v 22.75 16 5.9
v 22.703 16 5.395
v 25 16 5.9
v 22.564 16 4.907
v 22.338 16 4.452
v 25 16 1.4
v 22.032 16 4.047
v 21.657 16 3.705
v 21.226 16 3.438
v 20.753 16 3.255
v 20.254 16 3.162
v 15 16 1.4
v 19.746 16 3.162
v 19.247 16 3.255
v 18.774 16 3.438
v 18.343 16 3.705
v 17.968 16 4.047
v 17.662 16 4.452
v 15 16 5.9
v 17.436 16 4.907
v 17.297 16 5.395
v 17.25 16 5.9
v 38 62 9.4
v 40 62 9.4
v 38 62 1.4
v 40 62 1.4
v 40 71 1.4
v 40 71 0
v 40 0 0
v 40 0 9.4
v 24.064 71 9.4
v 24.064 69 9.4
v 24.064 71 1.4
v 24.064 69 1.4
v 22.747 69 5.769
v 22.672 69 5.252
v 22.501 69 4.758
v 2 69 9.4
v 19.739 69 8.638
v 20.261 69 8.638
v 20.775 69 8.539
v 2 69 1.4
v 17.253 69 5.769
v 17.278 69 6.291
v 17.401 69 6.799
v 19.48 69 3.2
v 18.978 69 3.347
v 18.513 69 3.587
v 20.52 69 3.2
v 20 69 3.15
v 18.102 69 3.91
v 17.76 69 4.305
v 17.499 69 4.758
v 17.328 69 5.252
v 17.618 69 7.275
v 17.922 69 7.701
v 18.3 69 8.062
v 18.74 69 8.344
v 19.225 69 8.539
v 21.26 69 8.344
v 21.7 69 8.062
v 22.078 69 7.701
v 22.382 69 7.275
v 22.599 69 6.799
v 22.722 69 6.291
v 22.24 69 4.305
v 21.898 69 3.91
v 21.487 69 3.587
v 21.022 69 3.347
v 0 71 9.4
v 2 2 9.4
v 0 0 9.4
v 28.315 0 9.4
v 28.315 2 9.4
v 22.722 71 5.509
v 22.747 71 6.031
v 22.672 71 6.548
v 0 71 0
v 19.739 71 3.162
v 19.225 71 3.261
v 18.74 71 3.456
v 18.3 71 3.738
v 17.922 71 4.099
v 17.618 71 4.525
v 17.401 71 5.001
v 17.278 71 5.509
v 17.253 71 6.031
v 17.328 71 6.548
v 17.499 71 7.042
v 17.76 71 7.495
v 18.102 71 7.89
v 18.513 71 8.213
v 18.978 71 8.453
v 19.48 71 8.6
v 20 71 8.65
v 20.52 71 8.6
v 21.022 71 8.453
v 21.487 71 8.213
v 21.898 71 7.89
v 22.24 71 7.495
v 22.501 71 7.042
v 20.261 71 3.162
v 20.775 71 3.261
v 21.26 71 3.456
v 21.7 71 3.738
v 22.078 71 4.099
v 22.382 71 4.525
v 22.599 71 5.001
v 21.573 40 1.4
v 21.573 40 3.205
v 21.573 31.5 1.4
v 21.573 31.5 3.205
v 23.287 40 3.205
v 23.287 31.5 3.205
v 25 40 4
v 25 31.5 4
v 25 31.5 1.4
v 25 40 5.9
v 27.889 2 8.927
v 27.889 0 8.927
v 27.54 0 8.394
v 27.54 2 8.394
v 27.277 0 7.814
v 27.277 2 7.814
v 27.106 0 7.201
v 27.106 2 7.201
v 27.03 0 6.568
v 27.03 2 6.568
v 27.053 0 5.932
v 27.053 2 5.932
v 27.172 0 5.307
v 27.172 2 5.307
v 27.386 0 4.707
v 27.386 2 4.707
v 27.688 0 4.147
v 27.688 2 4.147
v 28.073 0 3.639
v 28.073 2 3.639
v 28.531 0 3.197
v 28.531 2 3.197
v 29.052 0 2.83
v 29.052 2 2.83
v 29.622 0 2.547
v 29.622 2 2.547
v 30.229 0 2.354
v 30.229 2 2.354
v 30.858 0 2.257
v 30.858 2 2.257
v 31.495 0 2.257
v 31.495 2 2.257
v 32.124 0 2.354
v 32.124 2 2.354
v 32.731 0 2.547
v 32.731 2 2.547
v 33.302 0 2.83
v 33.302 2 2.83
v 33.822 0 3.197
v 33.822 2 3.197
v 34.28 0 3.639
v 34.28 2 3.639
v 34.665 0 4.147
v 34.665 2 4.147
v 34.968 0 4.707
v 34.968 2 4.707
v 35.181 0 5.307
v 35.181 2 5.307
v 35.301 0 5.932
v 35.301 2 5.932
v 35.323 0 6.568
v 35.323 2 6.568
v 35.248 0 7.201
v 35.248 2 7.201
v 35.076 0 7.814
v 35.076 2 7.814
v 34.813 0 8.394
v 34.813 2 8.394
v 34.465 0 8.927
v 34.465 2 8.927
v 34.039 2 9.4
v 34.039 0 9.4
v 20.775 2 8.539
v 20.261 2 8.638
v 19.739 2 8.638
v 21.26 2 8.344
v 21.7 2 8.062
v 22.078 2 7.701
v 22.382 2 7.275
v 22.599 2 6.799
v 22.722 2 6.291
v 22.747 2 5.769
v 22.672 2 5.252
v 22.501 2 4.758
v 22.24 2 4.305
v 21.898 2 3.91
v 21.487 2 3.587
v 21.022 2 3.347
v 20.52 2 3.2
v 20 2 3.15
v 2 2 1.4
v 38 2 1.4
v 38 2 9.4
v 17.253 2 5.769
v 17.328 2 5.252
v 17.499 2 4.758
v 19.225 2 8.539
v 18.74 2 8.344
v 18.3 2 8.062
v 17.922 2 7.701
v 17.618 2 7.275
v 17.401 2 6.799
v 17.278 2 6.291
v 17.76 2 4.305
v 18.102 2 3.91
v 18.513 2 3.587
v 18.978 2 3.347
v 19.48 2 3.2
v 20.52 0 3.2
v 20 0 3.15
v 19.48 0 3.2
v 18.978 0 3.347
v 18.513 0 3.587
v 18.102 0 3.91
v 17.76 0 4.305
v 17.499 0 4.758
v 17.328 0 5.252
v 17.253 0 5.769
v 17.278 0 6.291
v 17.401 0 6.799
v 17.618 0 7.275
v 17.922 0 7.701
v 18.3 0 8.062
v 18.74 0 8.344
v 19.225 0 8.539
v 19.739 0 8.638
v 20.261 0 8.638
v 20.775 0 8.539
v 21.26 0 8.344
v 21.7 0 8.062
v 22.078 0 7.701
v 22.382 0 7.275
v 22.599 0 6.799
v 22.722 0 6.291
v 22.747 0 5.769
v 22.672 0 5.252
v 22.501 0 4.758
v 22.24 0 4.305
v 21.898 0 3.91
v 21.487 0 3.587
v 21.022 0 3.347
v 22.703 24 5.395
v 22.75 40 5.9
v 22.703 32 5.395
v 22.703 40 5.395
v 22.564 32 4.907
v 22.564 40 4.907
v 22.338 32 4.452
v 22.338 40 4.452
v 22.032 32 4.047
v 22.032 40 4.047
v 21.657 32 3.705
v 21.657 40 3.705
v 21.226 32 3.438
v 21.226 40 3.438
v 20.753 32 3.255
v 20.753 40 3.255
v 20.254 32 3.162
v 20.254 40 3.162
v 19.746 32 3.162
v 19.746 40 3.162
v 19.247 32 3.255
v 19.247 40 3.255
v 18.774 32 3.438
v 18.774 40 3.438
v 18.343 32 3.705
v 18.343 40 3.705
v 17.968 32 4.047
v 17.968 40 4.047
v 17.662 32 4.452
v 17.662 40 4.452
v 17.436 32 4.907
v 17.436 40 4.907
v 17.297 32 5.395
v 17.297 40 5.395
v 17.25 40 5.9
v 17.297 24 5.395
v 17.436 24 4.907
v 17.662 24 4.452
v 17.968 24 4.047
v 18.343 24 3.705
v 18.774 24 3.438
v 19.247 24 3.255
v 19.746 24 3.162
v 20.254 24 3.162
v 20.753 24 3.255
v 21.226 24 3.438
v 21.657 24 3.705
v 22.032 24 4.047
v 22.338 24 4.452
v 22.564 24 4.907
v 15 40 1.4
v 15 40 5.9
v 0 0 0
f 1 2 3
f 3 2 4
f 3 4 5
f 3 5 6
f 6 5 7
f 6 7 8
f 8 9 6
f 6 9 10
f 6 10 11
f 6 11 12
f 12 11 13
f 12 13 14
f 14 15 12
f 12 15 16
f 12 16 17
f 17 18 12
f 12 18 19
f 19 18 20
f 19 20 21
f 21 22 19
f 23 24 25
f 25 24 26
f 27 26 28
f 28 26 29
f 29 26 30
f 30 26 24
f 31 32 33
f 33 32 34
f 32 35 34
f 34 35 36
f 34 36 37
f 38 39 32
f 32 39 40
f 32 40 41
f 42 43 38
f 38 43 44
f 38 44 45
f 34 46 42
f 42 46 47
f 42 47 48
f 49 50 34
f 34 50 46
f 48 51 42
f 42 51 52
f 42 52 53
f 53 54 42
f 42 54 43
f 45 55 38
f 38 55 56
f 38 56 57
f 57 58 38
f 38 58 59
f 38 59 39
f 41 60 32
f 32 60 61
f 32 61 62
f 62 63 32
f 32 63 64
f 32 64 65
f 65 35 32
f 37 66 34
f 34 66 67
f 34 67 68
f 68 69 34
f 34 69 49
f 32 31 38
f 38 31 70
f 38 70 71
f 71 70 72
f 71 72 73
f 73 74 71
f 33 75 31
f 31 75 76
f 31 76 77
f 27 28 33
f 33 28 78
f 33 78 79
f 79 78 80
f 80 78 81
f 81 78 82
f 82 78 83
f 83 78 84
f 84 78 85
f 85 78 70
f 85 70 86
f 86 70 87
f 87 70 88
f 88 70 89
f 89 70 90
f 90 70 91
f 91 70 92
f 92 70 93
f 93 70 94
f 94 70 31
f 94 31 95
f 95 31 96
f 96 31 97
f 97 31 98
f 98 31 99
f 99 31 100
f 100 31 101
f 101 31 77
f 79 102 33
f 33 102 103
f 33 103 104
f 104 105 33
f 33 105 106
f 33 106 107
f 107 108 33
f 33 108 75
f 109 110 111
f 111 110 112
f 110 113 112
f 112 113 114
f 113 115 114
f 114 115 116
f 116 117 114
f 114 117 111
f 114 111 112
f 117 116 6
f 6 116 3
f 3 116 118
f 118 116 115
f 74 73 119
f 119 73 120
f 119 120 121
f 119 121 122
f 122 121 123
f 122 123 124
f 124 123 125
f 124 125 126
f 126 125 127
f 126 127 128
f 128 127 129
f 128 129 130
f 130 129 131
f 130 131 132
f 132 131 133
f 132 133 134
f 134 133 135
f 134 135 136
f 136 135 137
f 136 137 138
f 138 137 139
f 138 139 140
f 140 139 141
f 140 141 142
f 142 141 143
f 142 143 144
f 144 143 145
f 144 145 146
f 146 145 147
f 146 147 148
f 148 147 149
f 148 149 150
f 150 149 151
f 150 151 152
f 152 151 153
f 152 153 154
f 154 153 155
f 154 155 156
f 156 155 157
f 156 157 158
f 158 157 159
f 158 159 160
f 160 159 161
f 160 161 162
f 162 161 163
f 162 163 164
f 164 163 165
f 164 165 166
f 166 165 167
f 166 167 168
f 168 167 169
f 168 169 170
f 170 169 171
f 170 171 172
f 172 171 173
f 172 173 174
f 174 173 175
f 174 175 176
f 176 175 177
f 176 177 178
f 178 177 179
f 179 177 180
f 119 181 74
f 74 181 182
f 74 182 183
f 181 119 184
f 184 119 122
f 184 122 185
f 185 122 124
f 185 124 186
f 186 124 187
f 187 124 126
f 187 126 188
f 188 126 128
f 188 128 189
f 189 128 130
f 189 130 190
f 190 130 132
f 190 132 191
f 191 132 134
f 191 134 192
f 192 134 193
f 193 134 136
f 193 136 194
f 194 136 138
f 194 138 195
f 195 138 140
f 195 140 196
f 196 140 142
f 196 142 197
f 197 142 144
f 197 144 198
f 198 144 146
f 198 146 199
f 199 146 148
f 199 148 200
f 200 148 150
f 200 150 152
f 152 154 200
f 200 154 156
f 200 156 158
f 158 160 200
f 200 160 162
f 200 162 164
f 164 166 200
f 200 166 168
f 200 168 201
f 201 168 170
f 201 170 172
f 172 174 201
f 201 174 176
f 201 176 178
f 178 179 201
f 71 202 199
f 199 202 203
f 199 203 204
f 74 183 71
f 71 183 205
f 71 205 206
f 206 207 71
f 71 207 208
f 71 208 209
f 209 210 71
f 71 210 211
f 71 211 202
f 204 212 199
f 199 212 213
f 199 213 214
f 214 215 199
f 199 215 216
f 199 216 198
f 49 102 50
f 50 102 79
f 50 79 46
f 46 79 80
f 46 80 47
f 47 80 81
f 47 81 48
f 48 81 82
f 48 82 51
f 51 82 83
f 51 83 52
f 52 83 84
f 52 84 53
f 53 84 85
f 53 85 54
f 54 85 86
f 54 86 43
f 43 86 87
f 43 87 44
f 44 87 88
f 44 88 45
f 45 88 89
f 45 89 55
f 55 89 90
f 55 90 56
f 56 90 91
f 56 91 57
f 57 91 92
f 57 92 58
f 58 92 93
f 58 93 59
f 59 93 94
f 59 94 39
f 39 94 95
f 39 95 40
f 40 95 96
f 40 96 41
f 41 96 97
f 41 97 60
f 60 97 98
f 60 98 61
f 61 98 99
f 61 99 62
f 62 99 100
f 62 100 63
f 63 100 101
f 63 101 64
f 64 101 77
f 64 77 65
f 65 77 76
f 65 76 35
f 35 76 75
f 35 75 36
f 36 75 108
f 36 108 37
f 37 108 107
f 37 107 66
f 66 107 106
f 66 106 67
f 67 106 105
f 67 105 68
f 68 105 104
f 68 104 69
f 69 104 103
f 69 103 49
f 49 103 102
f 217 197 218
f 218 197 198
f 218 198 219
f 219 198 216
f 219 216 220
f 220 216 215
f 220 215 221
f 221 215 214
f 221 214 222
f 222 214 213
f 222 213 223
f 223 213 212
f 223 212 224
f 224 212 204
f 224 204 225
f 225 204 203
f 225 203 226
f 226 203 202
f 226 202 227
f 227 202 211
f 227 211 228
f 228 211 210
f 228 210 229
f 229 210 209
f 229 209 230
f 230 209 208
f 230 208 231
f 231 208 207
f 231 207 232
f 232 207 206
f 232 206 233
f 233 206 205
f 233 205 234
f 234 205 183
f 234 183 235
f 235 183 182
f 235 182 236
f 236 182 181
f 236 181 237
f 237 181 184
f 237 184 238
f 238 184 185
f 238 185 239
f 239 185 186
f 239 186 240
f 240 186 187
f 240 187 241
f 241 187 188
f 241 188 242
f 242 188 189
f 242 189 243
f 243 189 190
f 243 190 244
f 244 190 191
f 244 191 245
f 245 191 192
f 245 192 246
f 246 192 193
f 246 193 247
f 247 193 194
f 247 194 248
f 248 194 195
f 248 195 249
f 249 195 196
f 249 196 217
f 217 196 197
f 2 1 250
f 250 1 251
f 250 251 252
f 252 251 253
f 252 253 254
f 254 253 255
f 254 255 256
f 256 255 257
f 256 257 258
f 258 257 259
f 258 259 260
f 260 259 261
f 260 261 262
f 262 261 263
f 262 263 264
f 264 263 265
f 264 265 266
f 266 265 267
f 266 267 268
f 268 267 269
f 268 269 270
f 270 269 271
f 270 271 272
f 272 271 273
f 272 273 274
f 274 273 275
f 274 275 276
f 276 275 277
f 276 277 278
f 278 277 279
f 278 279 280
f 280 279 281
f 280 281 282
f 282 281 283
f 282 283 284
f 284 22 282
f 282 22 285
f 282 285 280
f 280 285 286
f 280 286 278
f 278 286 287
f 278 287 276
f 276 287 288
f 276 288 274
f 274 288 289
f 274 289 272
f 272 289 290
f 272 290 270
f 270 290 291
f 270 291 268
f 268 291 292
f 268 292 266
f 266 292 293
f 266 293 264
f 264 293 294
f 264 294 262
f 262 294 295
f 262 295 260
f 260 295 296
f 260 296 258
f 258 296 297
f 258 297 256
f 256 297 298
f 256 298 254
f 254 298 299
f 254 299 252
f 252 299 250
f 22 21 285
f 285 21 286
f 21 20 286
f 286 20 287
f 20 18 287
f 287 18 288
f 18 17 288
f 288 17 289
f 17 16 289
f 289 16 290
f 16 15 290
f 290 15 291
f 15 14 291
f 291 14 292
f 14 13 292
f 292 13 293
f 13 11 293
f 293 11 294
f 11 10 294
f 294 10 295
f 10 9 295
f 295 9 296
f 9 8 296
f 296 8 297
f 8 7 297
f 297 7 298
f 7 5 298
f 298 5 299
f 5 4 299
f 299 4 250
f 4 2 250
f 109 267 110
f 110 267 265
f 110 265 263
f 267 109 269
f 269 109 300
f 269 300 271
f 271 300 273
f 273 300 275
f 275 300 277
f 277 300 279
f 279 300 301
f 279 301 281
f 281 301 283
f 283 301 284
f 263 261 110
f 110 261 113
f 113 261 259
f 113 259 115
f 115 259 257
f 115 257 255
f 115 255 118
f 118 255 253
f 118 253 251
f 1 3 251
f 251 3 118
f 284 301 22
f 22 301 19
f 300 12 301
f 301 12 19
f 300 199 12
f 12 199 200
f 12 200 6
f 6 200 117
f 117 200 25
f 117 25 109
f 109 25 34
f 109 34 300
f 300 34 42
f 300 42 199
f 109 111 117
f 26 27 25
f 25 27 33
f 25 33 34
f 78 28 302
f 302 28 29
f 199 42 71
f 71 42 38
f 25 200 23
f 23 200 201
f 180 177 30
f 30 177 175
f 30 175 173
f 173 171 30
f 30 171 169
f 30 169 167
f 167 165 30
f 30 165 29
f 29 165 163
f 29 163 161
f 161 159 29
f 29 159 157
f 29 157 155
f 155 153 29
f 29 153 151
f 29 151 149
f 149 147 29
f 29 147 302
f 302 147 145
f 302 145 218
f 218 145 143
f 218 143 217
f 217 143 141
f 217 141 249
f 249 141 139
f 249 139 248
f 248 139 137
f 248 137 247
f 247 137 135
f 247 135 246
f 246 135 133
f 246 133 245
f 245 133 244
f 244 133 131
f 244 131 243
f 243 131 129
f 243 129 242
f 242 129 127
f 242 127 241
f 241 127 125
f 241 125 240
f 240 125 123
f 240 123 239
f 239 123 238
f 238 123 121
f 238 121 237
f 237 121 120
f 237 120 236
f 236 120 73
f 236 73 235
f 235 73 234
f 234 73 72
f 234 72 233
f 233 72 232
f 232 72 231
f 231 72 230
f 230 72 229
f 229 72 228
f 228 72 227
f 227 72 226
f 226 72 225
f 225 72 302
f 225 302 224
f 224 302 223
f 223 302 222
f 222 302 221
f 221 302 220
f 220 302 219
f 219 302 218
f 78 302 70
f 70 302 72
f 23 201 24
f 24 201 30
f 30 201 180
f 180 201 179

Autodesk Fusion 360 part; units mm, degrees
sketch "Sketch2" plane through (0, 0, 0) normal (0, 0, 1) x (1, 0, 0)
  line L0 (0, 0) -> (40, 0)
  line L1 (40, 0) -> (40, 71)
  line L2 (40, 71) -> (0, 71)
  line L3 (0, 71) -> (0, 0)
  line L4 (2, 2) -> (38, 2)
  line L5 (38, 2) -> (38, 69)
  line L6 (38, 69) -> (2, 69)
  line L7 (2, 69) -> (2, 2)
  dimension "d1" = 40
  dimension "d2" = 71
  dimension "d26" = 67
extrude "Extrude1" add sketch "Sketch2" along normal blind 9.4
sketch "Sketch3" plane through (0, 0, 0) normal (0, 0, 1) x (1, 0, 0)
  line L0 (2, 2) -> (38, 2)
  line L1 (38, 2) -> (38, 69.0002)
  line L2 (38, 69.0002) -> (2, 69.0002)
  line L3 (2, 69.0002) -> (2, 2)
extrude "Extrude2" add sketch "Sketch3" along normal blind 1.4
sketch "Sketch4" plane through (0, 0, 1.4) normal (0, 0, 1) x (-1, 0, 0)
  line L0 (-2, -69) -> (-2, -2)
  line L1 (-2, -2) -> (-38, -2)
  line L2 (-38, -2) -> (-38, -69)
  line L3 (-25, -30) -> (-15, -30)
  line L4 (-15, -30) -> (-15, -40)
  line L5 (-15, -40) -> (-25, -40)
  line L6 (-25, -40) -> (-25, -30)
  line L7 (-38, -69) -> (-2, -69)
extrude "Extrude3" add sketch "Sketch4" along normal blind 3 contours L3 L4 L5 L6
extrude "Extrude4" add 1 faces at (21.6667, 33.3333, 4.4) along direction (0, 0, 1) blind 1.5
hole "Hole1" at (20, 71, 5.9) direction (0, -1, 0) diameter 5.5 depth 74 tip angle 118
hole "Hole2" at (31.1767, 2, 6.3948) direction (0, -1, 0) diameter 8.3 depth 10 tip angle 118
sketch "Sketch5" plane through (0, 40, 0) normal (0, 1, 0) x (-1, 0, 0)
  arc A0 (-22.75, 5.9) -> (-17.25, 5.9) centre (-20, 5.9) ccw
  line L0 (-22.75, 5.9) -> (-25, 5.9)
  line L1 (-25, 5.9) -> (-25, 1.4)
  line L2 (-25, 1.4) -> (-15, 1.4)
  line L3 (-15, 1.4) -> (-15, 5.9)
  line L4 (-15, 5.9) -> (-17.25, 5.9)
sketch "Sketch6" plane through (0, 40, 0) normal (0, 1, 0) x (-1, 0, 0)
  line L0 (-25, 1.4) -> (-21.5733, 1.4)
  line L1 (-21.5733, 1.4) -> (-21.5733, 3.205)
  line L2 (-21.5733, 3.205) -> (-23.2867, 3.205)
  line L3 (-25, 3.205) -> (-25, 1.4)
  line L4 (-23.2867, 3.205) -> (-25, 4)
  line L5 (-25, 4) -> (-25, 3.205)
extrude "Extrude5" cut sketch "Sketch6" against normal blind 8.5
extrude "Extrude6" add 1 faces at (24.1592, 30, 4.0023) along direction (0, -1, 0) blind 8
sketch "Sketch7" plane through (0, 0, 9.4) normal (0, 0, 1) x (-1, 0, 0)
  line L0 (-28.3147, 0) -> (-28.3147, -2)
  line L1 (-28.3147, -2) -> (-2, -2)
  line L2 (-2, -2) -> (-2, -69)
  line L3 (-2, -69) -> (-38, -69)
  line L4 (-38, -69) -> (-38, -2)
  line L5 (-38, -2) -> (-34.0387, -2)
  line L6 (-34.0387, -2) -> (-34.0387, 0)
  line L7 (-34.0387, 0) -> (-40, 0)
  line L8 (-40, 0) -> (-40, -71)
  line L9 (-40, -71) -> (0, -71)
  line L10 (0, -71) -> (0, 0)
  line L11 (0, 0) -> (-28.3147, 0)
  line L12 (-40, -69) -> (-24.0637, -69)
  line L13 (-24.0637, -69) -> (-24.0637, -71)
  line L14 (-24.0637, -71) -> (-40, -71)
  line L15 (-40, -71) -> (-40, -69)
extrude "Extrude7" cut sketch "Sketch7" against normal blind 8 contours L3 L8 L9 L12 L13 L14 L15
sketch "Sketch8" plane through (0, 0, 9.4) normal (0, 0, 1) x (-1, 0, 0)
  line L0 (-40, -69) -> (-38, -69)
  line L1 (-38, -69) -> (-38, -2)
  line L2 (-38, -2) -> (-34.0387, -2)
  line L3 (-34.0387, -2) -> (-34.0387, 0)
  line L4 (-34.0387, 0) -> (-40, 0)
  line L5 (-40, 0) -> (-40, -69)
  line L6 (-40, -69) -> (-38, -69)
  line L7 (-38, -69) -> (-38, -62)
  line L8 (-38, -62) -> (-40, -62)
  line L9 (-40, -62) -> (-40, -69)
extrude "Extrude8" cut sketch "Sketch8" against normal blind 8 contours L0 L1 L5 L6 L7 L8 L9
extrude "Extrude9" add 1 faces at (24.1592, 22, 4.0023) along direction (0, -1, 0) blind 6
